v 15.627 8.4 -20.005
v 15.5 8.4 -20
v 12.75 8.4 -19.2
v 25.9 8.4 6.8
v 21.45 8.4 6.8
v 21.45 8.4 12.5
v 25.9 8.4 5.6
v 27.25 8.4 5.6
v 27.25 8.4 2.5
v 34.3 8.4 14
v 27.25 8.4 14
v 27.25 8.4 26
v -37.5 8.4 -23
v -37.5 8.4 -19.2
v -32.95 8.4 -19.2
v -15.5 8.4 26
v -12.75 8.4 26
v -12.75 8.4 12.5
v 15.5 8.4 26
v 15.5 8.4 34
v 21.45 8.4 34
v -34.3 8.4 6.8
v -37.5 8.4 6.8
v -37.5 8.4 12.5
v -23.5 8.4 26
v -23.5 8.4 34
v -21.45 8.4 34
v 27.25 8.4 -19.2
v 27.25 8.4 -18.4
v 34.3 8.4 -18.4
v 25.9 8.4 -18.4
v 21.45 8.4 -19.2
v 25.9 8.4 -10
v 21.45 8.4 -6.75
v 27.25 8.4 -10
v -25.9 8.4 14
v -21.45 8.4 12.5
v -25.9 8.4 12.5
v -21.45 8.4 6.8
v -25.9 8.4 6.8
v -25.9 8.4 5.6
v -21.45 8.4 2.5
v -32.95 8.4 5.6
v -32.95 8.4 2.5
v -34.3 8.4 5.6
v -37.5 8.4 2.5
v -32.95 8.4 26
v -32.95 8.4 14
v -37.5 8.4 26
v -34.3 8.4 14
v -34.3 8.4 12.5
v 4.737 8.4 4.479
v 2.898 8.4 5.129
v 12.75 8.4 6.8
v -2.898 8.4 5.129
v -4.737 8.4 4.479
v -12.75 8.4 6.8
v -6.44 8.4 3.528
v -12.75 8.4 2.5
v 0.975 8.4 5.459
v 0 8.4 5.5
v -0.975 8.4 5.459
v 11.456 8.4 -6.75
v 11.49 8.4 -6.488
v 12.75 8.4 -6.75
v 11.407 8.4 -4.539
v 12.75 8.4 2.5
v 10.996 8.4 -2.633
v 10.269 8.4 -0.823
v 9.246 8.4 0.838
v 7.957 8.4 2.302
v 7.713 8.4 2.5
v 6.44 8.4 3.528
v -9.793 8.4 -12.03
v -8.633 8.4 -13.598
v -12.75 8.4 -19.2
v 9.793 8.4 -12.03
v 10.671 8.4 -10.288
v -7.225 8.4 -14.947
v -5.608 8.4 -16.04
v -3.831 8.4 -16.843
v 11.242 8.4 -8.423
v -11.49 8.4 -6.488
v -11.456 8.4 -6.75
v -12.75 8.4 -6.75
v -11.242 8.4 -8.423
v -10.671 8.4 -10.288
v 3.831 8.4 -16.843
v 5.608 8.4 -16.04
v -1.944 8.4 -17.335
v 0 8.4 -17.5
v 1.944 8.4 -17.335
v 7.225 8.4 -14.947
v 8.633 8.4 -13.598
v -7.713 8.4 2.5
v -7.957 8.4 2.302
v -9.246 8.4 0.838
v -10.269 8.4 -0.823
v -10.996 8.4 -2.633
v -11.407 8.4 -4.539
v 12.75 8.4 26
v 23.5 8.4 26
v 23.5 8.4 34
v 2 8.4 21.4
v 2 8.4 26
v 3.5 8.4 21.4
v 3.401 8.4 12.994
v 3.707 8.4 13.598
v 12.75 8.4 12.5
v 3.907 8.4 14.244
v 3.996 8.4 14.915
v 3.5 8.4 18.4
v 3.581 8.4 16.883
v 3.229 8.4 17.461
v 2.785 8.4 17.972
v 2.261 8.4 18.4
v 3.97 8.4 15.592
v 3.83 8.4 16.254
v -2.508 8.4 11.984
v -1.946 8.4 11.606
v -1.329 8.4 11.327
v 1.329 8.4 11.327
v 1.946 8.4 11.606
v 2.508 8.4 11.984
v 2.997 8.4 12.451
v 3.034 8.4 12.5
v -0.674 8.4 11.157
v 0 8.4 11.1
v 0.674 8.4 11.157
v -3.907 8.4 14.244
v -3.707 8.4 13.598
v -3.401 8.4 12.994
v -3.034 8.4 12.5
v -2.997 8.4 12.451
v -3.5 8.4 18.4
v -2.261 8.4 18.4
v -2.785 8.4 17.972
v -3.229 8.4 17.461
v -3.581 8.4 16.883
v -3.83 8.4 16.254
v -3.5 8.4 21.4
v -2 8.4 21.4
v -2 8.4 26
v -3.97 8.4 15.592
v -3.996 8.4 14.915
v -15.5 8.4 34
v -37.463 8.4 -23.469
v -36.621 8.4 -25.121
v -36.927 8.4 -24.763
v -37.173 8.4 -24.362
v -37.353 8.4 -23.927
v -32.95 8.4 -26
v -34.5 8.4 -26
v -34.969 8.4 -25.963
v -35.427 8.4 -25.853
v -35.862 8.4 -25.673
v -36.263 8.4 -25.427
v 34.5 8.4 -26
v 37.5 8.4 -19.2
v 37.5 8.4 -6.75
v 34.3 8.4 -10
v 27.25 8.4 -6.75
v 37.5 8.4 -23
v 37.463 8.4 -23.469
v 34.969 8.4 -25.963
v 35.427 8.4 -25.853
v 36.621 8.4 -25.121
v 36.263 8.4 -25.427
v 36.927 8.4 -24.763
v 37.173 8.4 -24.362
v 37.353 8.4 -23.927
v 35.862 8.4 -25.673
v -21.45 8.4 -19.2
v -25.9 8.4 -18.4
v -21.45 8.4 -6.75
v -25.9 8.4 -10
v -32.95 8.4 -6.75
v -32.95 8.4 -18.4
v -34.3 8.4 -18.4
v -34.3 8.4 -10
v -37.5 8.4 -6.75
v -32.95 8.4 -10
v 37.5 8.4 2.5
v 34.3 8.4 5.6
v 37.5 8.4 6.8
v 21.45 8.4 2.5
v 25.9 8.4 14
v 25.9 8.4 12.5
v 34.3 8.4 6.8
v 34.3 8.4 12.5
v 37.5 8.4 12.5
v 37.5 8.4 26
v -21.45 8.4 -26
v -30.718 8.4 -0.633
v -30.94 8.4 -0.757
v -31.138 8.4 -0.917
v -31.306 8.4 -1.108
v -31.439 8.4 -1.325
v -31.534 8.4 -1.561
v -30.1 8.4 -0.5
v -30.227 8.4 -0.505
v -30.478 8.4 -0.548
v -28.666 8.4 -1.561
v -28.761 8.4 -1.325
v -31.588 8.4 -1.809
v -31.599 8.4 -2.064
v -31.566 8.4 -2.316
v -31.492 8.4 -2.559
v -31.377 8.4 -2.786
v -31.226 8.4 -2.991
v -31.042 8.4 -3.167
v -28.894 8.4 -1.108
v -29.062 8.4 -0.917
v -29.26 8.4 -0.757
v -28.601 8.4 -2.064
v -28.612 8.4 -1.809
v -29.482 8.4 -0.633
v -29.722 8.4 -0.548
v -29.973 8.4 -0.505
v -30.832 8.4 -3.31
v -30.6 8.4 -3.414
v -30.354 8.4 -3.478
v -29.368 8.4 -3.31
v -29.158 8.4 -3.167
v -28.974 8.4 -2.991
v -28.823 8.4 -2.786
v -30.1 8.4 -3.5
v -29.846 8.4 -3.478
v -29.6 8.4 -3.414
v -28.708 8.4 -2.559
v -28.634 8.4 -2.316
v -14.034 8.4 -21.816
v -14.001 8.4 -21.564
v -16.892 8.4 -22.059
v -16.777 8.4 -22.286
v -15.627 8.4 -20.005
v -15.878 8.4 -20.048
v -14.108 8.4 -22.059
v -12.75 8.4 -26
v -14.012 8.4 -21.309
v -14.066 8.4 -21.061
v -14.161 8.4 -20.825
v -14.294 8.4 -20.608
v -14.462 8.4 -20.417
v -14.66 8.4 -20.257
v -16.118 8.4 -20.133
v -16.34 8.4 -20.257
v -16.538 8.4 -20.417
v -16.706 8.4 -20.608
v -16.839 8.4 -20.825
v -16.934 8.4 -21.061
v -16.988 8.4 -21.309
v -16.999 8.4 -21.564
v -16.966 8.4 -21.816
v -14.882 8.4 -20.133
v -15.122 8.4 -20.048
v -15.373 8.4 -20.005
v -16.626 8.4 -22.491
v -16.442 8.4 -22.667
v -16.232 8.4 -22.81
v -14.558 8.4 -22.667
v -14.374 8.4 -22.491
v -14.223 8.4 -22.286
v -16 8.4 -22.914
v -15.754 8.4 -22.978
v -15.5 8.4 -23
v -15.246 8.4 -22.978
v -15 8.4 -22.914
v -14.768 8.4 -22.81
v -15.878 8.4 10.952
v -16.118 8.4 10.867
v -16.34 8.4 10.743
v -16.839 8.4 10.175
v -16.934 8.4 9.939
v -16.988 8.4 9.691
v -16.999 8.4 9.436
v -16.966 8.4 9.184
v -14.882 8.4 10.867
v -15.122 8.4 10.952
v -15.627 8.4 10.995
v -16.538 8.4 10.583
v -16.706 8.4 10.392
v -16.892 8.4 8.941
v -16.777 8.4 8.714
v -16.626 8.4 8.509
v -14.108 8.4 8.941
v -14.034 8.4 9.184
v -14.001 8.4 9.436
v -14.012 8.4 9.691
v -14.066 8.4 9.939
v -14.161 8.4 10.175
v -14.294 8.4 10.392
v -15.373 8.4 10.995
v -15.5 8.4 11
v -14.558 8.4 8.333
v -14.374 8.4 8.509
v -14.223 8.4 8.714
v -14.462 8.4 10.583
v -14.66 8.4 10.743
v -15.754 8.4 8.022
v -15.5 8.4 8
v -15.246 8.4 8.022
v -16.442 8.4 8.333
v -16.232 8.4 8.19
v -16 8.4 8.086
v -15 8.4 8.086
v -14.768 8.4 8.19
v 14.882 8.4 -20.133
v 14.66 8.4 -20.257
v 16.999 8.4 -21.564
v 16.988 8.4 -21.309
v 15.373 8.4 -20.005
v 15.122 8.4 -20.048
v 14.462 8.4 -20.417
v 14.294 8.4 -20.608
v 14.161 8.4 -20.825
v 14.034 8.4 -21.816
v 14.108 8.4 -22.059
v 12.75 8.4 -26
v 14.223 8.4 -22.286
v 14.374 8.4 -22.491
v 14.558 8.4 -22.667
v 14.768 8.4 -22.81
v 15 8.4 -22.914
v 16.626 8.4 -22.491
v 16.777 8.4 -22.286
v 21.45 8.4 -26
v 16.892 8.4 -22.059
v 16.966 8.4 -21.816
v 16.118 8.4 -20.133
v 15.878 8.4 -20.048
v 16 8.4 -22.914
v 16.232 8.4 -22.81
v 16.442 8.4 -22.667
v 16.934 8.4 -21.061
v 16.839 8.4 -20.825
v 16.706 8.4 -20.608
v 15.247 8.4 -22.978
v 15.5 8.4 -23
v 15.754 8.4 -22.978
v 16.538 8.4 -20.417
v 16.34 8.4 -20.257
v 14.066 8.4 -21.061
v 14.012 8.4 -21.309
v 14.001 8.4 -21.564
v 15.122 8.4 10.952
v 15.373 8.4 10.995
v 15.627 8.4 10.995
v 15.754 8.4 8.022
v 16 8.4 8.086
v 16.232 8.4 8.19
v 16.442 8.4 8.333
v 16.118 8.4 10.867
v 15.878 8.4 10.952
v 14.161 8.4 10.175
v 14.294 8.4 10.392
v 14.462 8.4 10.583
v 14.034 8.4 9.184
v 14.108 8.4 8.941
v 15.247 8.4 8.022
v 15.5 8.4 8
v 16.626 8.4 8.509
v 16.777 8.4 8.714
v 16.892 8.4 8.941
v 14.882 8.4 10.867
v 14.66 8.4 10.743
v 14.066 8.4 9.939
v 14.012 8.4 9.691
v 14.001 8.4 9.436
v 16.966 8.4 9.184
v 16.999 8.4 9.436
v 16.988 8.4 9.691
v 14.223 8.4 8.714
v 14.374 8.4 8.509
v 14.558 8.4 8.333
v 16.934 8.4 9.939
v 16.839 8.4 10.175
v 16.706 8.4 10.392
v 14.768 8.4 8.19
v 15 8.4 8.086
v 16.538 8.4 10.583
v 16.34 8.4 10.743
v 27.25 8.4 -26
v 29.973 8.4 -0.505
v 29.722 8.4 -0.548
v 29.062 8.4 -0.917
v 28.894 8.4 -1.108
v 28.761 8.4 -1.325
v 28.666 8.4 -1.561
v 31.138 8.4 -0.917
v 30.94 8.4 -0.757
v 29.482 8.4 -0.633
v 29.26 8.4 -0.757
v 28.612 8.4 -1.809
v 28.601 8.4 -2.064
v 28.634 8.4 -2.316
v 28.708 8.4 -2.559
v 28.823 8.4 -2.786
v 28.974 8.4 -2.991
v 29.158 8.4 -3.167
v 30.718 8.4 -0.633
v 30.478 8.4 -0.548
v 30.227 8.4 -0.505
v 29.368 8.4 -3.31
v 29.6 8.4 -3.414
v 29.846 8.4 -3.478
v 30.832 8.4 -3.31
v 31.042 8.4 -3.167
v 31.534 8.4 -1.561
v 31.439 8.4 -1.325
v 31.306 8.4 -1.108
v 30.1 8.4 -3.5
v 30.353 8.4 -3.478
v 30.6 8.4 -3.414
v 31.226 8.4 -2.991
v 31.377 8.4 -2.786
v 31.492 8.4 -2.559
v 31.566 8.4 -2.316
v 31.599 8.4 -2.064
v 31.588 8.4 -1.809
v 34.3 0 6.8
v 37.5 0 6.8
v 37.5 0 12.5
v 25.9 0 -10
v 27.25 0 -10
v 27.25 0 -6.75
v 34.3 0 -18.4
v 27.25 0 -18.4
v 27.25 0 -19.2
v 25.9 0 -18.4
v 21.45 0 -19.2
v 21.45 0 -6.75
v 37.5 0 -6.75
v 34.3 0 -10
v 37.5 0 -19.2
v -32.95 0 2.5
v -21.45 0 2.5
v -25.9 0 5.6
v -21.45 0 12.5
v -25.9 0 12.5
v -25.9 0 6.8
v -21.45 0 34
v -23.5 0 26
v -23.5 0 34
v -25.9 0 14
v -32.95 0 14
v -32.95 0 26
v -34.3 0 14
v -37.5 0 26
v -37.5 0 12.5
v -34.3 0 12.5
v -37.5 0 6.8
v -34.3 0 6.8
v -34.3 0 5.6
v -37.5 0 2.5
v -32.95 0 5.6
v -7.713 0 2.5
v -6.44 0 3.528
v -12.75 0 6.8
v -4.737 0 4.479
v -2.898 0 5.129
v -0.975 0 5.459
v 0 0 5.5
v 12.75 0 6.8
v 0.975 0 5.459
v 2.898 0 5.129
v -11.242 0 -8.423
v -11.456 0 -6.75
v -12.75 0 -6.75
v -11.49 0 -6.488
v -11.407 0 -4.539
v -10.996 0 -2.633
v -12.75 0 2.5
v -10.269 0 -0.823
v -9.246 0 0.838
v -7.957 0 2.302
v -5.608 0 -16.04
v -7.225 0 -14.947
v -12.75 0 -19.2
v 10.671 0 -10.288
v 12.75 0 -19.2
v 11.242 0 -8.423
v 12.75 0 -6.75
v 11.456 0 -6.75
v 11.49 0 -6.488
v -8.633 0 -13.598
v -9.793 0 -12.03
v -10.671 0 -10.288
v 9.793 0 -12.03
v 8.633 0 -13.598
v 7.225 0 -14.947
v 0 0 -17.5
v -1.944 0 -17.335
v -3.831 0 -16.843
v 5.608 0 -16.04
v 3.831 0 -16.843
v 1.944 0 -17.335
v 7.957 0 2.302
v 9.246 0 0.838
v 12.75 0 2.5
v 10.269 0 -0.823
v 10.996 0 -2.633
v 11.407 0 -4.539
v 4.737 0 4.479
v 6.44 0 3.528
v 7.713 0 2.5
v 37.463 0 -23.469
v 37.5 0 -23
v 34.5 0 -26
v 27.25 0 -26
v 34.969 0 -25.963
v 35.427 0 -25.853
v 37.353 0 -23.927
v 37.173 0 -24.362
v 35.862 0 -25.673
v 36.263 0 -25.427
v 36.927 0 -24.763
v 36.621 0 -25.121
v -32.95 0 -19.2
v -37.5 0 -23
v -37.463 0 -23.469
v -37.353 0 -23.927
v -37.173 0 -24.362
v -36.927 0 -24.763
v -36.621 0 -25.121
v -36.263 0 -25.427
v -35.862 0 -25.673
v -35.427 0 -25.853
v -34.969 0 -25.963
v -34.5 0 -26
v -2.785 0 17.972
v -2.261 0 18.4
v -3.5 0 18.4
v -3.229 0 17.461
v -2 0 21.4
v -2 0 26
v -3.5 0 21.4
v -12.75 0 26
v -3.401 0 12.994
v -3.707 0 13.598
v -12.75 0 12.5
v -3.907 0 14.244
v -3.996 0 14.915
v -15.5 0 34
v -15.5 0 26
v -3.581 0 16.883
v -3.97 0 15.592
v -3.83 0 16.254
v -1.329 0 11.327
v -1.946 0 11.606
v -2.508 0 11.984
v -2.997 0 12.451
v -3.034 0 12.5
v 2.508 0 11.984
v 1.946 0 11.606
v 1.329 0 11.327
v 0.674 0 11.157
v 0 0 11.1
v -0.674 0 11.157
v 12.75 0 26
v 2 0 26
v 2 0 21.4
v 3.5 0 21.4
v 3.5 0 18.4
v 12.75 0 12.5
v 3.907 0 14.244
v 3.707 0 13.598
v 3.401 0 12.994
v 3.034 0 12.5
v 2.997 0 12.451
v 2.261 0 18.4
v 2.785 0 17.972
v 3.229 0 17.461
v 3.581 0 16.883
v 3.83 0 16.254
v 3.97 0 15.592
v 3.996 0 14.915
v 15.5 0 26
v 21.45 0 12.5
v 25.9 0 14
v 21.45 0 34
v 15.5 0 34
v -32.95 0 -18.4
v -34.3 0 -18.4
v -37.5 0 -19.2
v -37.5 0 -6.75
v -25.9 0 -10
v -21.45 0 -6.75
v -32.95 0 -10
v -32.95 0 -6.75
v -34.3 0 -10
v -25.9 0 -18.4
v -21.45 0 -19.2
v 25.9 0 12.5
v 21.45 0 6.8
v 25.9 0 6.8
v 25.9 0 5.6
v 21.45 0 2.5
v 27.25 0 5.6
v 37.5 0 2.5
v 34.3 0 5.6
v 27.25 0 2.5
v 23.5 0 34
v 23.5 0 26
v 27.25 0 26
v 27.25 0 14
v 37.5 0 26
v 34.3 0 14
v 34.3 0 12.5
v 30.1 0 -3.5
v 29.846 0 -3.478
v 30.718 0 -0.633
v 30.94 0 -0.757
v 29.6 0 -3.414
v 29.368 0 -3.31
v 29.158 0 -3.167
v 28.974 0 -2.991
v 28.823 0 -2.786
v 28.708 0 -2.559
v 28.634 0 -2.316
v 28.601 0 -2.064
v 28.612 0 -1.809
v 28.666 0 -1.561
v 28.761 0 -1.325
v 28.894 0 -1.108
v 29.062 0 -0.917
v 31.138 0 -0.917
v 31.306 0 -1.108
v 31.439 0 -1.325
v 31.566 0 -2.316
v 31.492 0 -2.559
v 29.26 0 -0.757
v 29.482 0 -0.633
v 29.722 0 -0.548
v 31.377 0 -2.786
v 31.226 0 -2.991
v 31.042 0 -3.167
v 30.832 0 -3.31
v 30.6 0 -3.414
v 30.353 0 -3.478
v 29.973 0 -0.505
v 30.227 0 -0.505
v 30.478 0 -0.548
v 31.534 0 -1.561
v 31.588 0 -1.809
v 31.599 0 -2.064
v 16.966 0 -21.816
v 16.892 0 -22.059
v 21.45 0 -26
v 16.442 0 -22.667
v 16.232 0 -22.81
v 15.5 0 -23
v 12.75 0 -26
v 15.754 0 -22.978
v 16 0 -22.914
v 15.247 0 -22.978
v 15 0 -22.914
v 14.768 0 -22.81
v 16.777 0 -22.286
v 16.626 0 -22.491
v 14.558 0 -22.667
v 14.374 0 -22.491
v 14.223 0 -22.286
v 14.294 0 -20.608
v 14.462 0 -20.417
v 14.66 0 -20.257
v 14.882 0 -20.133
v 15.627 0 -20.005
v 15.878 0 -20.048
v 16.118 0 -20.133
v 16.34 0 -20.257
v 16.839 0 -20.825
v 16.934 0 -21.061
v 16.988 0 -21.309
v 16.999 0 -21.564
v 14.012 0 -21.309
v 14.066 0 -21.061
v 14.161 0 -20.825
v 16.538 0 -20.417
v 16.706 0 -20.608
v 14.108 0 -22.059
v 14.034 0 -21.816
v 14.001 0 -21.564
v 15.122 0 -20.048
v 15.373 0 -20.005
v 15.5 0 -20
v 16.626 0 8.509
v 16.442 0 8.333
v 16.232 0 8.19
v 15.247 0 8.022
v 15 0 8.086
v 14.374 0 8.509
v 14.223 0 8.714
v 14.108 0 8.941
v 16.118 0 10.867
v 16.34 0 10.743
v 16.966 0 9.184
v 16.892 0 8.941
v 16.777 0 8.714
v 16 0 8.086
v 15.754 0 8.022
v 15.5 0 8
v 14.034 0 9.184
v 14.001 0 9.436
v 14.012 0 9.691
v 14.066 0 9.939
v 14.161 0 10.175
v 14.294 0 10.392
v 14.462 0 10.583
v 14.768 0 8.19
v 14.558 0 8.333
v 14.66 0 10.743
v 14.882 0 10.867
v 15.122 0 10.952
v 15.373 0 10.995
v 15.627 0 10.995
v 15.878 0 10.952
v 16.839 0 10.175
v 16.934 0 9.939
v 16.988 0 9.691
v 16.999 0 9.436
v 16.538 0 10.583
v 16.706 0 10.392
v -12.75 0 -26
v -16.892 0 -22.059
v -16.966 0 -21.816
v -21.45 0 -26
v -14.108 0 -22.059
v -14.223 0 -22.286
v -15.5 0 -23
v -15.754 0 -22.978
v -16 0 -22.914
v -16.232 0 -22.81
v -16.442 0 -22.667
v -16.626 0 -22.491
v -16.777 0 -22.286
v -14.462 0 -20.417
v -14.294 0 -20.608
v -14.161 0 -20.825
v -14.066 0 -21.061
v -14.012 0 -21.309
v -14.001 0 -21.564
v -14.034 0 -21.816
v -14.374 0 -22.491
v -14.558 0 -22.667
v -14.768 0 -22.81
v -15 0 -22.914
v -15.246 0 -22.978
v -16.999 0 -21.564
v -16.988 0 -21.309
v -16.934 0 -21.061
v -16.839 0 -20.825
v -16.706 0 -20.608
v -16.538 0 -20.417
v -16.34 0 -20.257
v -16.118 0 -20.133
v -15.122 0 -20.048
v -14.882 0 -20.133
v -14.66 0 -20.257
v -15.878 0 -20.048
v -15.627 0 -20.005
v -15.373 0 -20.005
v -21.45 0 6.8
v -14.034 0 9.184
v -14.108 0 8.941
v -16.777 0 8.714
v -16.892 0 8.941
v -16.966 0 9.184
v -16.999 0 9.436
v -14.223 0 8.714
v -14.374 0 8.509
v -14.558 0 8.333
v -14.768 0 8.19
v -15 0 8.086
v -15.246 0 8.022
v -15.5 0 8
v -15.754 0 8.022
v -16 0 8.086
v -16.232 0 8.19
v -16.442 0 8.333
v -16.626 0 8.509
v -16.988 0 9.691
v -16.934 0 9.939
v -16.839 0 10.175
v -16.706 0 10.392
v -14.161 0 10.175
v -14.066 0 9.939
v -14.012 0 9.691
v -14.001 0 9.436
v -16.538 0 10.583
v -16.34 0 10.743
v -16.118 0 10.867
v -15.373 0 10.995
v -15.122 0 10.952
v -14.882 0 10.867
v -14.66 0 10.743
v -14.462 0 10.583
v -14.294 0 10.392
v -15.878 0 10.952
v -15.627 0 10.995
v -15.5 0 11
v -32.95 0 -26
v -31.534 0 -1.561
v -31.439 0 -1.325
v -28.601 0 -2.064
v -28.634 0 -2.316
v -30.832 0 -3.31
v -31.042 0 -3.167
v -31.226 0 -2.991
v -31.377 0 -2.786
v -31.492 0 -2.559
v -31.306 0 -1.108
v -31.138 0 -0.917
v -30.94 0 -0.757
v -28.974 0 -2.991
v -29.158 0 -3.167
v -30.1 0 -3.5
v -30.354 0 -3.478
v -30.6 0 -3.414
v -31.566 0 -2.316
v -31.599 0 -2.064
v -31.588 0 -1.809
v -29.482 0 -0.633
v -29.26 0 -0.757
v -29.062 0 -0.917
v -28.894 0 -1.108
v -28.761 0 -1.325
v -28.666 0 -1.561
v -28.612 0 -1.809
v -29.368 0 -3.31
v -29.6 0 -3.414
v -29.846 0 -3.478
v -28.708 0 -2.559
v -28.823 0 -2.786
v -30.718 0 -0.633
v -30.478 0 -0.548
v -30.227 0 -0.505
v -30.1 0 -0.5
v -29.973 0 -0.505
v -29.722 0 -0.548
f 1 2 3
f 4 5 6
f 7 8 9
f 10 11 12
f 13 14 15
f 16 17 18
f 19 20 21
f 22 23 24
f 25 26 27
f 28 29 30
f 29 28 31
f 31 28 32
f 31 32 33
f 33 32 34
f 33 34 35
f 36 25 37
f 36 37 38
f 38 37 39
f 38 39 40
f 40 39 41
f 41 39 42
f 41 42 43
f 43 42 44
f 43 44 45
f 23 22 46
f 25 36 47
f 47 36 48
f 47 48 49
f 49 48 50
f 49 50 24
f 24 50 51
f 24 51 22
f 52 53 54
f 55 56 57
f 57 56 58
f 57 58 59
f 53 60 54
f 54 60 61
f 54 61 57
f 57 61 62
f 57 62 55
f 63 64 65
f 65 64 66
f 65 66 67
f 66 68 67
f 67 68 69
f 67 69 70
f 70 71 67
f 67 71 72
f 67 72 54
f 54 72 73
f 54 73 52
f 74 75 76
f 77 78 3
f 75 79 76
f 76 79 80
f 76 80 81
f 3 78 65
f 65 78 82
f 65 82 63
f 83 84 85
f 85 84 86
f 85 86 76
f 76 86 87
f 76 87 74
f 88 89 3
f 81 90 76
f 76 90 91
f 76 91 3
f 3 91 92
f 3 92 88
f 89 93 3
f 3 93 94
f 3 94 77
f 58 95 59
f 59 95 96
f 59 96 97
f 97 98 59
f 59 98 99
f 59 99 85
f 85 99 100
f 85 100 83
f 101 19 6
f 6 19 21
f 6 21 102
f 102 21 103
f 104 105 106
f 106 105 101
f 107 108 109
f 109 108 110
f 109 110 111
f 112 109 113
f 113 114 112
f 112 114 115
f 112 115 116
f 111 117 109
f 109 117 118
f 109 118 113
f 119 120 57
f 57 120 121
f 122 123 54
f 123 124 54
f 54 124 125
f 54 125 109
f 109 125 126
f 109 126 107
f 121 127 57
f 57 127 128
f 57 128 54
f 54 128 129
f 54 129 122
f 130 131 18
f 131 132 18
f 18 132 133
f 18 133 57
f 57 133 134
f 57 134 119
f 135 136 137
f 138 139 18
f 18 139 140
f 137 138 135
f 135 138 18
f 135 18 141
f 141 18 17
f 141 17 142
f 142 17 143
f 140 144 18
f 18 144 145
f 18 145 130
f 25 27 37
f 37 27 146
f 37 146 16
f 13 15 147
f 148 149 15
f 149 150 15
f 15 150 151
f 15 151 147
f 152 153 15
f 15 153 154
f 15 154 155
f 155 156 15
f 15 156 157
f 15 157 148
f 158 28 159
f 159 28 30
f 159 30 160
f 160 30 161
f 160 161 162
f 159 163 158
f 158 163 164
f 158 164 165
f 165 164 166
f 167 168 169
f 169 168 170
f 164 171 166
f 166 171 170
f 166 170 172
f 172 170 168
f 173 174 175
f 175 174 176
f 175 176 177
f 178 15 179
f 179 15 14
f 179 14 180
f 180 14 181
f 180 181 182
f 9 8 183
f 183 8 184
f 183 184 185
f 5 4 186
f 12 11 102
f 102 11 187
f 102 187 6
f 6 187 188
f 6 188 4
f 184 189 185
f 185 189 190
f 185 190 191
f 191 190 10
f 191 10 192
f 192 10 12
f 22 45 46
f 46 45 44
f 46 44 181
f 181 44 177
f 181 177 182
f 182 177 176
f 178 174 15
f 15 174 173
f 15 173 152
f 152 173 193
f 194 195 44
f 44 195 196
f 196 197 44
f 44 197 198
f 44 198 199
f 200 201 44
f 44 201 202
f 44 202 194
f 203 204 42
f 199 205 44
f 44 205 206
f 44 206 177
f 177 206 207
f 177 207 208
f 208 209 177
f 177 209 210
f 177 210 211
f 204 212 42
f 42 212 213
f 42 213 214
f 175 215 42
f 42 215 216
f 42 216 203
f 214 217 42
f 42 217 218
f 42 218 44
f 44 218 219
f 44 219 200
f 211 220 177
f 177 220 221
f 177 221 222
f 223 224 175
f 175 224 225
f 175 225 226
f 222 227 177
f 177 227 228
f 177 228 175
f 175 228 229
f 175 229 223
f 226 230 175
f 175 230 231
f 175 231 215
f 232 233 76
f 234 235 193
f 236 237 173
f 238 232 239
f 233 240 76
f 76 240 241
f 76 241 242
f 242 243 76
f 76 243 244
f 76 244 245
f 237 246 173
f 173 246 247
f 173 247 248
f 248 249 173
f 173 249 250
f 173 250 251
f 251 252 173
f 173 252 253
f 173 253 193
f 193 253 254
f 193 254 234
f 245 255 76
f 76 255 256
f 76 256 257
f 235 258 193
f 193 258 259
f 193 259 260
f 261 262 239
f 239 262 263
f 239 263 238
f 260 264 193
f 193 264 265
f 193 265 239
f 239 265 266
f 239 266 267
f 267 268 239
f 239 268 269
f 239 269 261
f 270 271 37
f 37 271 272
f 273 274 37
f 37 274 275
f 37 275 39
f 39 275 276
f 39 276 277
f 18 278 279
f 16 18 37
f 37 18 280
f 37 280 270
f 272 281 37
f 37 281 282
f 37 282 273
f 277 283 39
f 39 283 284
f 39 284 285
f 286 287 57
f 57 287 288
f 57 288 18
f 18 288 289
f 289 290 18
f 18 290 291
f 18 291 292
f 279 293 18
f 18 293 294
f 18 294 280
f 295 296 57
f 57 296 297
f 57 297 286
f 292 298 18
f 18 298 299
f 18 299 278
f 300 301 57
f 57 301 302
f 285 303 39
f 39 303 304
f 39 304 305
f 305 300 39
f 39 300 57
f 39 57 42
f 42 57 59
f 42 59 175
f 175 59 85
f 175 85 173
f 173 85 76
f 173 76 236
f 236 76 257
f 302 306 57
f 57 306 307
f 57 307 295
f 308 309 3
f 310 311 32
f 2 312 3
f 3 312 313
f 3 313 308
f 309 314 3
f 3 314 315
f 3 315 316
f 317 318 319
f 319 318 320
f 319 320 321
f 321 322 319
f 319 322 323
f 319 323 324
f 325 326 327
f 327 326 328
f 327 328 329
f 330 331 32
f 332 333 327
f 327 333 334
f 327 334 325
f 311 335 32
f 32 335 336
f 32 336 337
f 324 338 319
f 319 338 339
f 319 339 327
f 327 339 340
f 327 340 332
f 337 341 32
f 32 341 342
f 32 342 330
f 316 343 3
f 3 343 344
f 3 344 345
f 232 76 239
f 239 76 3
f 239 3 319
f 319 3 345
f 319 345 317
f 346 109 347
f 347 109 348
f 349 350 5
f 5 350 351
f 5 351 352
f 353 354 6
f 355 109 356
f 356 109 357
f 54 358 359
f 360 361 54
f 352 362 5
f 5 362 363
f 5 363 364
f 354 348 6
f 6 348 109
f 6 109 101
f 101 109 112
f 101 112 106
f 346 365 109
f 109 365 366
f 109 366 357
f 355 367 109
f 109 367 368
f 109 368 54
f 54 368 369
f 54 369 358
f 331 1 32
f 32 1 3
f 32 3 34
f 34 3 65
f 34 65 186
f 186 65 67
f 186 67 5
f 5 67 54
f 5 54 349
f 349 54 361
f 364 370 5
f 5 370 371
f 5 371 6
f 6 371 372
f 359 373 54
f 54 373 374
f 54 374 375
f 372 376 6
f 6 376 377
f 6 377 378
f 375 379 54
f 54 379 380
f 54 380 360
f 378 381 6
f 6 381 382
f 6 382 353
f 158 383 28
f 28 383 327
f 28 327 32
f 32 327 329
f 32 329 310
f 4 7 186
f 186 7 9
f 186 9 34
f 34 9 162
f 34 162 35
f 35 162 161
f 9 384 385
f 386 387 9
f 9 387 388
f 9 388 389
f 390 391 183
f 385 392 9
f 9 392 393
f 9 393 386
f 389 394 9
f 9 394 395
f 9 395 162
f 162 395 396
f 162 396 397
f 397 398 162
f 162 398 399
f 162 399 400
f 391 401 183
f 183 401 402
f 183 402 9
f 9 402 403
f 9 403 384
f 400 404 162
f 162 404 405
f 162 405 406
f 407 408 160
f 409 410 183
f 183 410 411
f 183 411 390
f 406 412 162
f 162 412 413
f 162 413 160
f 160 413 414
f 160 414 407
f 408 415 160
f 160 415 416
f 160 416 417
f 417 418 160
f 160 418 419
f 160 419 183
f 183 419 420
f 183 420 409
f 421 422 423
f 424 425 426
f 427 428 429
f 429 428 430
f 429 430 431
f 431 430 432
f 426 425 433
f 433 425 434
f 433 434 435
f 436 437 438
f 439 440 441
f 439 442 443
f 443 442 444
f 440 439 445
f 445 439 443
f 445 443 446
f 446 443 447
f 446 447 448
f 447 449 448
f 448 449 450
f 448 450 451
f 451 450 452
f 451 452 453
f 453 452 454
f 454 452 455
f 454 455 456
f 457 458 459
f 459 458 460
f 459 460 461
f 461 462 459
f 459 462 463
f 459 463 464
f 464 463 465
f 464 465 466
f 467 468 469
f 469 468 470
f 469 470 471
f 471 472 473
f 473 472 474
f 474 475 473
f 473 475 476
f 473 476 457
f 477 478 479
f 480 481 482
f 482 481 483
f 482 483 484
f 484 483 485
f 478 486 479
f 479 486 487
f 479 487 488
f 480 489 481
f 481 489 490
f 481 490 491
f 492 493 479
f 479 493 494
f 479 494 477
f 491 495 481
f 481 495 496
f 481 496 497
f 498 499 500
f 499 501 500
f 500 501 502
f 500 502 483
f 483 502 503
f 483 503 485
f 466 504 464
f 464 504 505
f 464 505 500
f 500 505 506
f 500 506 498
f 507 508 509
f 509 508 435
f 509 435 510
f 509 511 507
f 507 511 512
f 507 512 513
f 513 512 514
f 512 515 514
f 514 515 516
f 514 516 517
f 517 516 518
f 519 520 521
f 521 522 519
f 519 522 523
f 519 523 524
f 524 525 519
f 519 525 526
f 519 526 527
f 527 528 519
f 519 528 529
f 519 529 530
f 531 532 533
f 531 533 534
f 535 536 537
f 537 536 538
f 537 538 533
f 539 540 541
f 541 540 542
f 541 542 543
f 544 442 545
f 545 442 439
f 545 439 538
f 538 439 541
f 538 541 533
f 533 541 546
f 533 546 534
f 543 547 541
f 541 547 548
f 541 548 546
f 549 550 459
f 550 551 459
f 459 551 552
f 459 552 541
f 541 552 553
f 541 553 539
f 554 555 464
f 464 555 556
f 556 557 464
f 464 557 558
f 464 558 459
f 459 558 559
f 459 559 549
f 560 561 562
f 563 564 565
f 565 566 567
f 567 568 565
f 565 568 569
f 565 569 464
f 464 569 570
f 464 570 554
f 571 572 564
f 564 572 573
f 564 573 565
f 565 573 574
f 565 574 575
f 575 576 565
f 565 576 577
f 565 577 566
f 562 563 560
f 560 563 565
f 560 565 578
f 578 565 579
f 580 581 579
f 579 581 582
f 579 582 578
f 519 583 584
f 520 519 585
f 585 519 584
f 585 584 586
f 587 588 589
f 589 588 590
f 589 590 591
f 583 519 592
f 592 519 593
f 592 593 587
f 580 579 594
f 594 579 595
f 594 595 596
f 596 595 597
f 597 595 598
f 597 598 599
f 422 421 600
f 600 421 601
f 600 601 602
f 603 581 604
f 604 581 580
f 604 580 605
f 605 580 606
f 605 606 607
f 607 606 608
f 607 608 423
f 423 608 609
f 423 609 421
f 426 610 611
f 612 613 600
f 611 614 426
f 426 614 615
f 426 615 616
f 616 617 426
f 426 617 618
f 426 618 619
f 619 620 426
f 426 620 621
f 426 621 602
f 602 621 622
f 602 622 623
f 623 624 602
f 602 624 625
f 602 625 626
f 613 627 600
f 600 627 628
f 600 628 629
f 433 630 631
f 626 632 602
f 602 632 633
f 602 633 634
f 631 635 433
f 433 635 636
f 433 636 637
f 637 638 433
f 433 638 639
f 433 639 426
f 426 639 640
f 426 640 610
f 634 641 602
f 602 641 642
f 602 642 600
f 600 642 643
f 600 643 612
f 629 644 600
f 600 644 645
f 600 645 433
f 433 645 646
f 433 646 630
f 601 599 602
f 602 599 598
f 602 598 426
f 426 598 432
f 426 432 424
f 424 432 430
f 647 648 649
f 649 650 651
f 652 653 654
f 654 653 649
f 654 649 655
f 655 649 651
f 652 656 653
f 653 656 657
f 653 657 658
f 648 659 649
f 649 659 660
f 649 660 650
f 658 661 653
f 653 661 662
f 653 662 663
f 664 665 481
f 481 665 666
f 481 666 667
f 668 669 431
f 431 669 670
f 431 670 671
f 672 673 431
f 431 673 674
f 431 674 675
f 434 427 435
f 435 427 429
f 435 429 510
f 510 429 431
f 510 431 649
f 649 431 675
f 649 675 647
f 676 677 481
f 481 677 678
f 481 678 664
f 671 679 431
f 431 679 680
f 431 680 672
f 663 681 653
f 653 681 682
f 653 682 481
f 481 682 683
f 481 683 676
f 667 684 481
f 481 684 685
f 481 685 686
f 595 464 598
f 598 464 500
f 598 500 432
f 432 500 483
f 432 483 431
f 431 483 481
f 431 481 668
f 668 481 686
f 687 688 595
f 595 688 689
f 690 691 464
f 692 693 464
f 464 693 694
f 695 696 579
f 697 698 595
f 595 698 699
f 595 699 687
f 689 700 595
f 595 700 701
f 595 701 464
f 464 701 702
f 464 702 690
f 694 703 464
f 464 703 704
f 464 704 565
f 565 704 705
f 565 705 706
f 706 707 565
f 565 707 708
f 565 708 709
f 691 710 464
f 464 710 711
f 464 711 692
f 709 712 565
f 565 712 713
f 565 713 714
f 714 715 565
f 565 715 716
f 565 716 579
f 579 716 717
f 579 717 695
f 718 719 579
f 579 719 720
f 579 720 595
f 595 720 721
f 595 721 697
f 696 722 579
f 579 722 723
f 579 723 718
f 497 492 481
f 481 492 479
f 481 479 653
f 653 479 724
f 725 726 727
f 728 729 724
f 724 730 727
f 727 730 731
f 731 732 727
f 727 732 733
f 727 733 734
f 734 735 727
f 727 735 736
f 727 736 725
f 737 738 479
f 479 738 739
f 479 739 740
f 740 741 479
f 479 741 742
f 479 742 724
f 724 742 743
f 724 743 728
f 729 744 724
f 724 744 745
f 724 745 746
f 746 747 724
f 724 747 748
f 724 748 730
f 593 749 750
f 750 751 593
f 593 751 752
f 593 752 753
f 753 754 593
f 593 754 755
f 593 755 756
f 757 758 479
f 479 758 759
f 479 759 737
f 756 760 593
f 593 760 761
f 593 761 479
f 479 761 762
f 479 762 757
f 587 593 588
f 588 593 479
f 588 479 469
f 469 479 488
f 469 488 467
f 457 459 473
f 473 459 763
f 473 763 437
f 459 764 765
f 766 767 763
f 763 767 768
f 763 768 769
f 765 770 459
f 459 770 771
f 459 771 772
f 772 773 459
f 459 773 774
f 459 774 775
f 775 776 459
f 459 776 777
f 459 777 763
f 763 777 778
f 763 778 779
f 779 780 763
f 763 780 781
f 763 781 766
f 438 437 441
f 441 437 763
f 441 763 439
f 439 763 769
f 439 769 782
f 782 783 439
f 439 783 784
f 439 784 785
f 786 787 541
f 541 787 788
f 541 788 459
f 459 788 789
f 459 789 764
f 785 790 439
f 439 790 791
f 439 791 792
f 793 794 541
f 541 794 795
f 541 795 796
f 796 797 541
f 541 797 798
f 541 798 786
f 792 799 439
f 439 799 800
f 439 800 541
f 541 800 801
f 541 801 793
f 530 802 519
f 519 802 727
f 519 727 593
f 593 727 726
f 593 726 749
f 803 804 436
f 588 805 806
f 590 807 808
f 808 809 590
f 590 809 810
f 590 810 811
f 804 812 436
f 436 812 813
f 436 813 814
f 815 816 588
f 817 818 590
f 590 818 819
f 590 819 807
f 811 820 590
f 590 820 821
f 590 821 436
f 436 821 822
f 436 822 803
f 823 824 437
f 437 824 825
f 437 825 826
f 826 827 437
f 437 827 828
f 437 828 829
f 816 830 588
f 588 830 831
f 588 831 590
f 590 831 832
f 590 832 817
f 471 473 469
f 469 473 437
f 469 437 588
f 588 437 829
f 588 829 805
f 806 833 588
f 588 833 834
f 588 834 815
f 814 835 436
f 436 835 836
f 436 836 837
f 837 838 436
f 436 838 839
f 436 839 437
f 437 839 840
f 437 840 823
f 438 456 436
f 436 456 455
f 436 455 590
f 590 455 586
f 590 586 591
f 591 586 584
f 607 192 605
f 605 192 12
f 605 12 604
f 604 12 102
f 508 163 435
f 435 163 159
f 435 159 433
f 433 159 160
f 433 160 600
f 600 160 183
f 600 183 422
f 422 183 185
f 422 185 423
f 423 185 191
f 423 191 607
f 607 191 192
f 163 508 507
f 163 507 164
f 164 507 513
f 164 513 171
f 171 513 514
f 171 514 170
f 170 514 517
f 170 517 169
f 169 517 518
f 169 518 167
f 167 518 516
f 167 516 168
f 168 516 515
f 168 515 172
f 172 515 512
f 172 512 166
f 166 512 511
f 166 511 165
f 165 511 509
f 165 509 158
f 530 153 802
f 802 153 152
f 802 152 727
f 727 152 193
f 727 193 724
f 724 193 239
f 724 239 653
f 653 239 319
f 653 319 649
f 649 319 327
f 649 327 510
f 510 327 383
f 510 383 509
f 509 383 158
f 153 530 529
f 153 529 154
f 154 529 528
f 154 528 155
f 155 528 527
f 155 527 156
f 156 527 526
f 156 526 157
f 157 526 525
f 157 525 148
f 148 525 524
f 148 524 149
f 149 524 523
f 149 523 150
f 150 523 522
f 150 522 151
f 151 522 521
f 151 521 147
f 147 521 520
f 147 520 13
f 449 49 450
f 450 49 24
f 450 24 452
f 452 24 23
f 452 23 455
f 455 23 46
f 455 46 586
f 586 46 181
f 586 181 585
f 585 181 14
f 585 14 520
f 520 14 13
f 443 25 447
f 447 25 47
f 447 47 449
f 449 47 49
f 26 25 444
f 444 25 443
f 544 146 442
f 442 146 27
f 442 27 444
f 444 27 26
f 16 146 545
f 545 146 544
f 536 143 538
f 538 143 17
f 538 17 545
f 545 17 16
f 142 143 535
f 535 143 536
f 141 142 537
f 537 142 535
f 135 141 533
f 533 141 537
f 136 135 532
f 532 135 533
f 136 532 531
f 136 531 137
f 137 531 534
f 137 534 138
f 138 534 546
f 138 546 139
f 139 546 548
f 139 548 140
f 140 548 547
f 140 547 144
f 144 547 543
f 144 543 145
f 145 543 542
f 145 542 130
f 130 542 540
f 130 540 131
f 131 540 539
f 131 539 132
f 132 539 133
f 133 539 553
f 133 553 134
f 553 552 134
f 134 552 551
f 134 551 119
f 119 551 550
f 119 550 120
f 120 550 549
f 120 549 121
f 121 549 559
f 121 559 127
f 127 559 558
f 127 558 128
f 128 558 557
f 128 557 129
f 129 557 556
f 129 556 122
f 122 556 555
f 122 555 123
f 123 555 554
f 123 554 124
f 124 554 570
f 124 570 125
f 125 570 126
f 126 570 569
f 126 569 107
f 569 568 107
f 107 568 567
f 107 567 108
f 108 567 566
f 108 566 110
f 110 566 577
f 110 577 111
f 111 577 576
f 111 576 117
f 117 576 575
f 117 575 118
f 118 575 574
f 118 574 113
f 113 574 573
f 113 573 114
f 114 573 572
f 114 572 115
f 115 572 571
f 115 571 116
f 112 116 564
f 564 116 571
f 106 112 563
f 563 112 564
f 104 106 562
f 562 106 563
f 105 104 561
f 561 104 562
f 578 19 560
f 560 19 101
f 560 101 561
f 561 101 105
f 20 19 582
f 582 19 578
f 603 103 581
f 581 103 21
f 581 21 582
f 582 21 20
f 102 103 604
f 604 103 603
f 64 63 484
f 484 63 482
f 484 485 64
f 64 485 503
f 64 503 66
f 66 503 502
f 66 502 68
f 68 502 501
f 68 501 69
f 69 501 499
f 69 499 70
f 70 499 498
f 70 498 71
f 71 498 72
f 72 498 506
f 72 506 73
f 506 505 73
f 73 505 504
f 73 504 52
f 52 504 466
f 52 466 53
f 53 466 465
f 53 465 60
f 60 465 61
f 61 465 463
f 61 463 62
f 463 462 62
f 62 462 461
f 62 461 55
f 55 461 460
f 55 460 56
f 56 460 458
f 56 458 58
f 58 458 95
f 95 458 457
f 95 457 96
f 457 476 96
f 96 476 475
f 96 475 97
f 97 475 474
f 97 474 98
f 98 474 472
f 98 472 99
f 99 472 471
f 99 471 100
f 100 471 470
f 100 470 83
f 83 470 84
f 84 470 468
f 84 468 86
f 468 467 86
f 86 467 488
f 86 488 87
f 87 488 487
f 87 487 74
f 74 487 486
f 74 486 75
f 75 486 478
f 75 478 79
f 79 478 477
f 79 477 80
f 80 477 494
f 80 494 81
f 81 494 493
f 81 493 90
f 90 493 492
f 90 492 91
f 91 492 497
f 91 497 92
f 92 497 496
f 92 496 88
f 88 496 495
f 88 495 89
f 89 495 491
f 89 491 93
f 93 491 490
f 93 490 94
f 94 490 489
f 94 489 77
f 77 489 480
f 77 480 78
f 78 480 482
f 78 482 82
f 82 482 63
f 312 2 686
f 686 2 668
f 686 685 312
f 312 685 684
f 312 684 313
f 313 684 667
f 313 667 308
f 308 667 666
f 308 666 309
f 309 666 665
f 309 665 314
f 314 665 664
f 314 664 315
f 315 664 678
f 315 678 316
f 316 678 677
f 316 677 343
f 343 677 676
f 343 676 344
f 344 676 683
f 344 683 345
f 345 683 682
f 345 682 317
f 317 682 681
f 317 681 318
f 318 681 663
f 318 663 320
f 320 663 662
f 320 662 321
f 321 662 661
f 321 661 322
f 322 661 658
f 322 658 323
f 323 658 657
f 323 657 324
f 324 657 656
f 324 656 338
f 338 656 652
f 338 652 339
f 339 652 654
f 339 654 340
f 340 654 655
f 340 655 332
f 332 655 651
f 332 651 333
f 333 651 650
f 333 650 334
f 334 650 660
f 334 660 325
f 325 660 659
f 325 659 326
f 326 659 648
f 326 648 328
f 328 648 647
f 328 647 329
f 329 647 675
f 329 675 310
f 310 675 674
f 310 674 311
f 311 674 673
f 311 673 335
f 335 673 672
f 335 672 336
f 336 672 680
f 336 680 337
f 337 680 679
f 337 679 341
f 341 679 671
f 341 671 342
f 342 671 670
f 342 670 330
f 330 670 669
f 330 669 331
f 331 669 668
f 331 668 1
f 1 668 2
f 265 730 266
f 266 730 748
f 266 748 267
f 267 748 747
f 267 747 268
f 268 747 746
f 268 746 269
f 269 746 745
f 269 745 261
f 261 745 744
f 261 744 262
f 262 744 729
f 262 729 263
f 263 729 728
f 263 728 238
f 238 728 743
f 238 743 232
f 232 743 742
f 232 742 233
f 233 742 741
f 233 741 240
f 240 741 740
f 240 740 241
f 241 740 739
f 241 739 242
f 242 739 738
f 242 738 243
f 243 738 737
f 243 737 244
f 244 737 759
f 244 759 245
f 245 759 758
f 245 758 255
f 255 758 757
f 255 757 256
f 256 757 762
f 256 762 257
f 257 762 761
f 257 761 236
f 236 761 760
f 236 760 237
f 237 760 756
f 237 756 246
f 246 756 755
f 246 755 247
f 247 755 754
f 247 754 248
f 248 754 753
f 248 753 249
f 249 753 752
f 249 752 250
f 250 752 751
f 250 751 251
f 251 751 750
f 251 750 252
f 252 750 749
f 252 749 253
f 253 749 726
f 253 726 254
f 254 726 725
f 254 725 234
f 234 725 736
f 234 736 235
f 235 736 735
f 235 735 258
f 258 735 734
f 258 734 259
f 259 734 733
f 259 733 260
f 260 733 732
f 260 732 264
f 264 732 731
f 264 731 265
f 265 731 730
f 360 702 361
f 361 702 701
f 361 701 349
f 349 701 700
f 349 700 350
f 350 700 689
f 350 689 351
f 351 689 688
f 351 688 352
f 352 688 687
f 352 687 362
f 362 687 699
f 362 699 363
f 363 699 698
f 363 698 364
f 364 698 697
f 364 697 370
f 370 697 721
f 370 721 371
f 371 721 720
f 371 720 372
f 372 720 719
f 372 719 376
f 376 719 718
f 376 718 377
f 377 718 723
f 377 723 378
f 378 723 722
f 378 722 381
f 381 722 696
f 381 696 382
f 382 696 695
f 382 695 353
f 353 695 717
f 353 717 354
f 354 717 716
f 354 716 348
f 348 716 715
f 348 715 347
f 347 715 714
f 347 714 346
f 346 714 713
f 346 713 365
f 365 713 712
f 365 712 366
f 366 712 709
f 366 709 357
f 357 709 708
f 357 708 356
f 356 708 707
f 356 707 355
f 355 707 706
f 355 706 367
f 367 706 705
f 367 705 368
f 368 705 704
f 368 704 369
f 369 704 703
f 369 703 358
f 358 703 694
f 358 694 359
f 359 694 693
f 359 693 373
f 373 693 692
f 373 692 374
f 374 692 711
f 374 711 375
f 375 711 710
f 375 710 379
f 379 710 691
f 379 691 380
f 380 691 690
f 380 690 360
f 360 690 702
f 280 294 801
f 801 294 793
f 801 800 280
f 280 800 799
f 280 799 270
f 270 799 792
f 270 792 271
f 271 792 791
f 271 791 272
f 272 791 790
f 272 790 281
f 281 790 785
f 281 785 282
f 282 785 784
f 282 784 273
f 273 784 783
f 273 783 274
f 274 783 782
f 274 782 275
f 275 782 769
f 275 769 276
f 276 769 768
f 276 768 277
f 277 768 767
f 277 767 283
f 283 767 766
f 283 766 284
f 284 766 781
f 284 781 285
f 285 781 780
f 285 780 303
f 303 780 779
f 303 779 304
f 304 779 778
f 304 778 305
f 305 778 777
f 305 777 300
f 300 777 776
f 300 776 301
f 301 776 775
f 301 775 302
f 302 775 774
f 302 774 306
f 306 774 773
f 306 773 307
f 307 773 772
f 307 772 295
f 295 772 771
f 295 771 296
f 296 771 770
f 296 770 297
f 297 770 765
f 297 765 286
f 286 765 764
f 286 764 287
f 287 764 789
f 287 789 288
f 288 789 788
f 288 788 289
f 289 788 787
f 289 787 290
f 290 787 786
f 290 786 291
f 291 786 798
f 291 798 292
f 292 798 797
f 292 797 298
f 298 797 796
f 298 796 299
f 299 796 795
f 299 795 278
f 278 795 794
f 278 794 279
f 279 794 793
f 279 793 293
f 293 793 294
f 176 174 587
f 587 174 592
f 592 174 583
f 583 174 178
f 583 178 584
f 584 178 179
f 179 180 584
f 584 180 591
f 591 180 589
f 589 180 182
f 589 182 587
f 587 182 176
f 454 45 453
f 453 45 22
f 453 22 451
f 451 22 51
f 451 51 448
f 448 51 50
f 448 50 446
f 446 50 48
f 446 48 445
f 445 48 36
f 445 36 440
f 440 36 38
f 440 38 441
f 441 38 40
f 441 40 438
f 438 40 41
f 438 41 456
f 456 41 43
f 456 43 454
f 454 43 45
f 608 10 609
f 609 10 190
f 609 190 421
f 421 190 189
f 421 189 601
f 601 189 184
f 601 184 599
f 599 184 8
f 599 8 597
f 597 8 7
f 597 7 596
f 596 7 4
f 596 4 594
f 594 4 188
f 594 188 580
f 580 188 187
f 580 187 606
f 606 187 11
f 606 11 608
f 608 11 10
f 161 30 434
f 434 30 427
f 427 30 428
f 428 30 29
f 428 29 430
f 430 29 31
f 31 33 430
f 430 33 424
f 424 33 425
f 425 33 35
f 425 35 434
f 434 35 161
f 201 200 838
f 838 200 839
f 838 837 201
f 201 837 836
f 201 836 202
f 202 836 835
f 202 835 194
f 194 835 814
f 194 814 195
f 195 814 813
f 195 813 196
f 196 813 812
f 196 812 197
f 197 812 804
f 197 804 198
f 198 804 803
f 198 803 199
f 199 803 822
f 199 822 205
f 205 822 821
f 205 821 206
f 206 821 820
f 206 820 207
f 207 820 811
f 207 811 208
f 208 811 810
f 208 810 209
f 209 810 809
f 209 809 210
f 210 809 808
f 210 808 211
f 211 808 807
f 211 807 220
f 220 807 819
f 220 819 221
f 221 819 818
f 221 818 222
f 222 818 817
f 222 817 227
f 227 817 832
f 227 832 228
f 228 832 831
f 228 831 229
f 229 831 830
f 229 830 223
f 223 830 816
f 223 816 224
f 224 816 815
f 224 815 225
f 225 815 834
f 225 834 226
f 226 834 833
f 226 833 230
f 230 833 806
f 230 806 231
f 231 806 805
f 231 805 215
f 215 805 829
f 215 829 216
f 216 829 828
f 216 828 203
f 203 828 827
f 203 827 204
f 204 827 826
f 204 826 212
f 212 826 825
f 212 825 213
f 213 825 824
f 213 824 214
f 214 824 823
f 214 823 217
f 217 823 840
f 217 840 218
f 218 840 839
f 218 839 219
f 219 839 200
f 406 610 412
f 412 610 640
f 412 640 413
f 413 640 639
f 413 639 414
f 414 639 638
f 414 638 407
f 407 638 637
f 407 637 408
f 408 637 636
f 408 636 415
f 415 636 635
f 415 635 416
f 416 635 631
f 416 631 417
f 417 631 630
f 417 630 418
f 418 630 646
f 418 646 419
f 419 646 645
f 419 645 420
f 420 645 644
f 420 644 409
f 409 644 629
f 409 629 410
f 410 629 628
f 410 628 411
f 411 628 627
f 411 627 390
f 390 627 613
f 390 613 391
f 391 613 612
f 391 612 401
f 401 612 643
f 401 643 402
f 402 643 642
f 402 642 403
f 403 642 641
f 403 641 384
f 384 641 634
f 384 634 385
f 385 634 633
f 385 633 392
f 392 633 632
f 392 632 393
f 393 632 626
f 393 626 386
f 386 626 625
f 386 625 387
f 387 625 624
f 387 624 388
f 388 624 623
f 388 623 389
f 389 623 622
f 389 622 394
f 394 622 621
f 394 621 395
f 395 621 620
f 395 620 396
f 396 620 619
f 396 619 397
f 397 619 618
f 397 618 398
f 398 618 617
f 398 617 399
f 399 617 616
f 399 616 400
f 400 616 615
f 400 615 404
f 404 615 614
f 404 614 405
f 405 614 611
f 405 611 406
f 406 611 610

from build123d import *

# Parameters (mm, degrees)
SKETCH1_R           = 11.5
SKETCH1_R_2         = 1.5
SKETCH1_W           = 8.4
SKETCH1_H           = 8.4
BOSS_EXTRUDE1_DEPTH = 8.4


with BuildPart() as part:
    # Sketch1 → Boss-Extrude1 (new body)
    with BuildSketch(Plane(origin=(0, 0, 0), x_dir=(1, 0, 0), z_dir=(0, 1, 0))):
        with BuildLine():
            Line((-34.5, 26), (34.5, 26))
            ThreePointArc((34.5, 26), (36.621320344, 25.121320344), (37.5, 23))
            Line((37.5, 23), (37.5, -26))
            Line((37.5, -26), (23.5, -26))
            Line((23.5, -26), (23.5, -34))
            Line((23.5, -34), (15.5, -34))
            Line((15.5, -34), (15.5, -26))
            Line((15.5, -26), (2, -26))
            Line((2, -26), (2, -21.4))
            Line((2, -21.4), (3.5, -21.4))
            Line((3.5, -21.4), (3.5, -18.4))
            Line((3.5, -18.4), (2.260530911, -18.4))
            ThreePointArc((2.260530911, -18.4), (0, -11.1), (-2.260530911, -18.4))
            Line((-2.260530911, -18.4), (-3.5, -18.4))
            Line((-3.5, -18.4), (-3.5, -21.4))
            Line((-3.5, -21.4), (-2, -21.4))
            Line((-2, -21.4), (-2, -26))
            Line((-2, -26), (-15.5, -26))
            Line((-15.5, -26), (-15.5, -34))
            Line((-15.5, -34), (-23.5, -34))
            Line((-23.5, -34), (-23.5, -26))
            Line((-23.5, -26), (-37.5, -26))
            Line((-37.5, -26), (-37.5, 23))
            ThreePointArc((-37.5, 23), (-36.621320344, 25.121320344), (-34.5, 26))
        make_face()
        with Locations((0, 6)):
            Circle(SKETCH1_R, mode=Mode.SUBTRACT)
        with Locations((15.5, 21.5)):
            Circle(SKETCH1_R_2, mode=Mode.SUBTRACT)
        with Locations((-15.5, 21.5)):
            Circle(SKETCH1_R_2, mode=Mode.SUBTRACT)
        with Locations((15.5, -9.5)):
            Circle(SKETCH1_R_2, mode=Mode.SUBTRACT)
        with Locations((-15.5, -9.5)):
            Circle(SKETCH1_R_2, mode=Mode.SUBTRACT)
        with Locations((-30.1, 2)):
            Circle(SKETCH1_R_2, mode=Mode.SUBTRACT)
        with Locations((30.1, 2)):
            Circle(SKETCH1_R_2, mode=Mode.SUBTRACT)
        with Locations((-30.1, 14.2)):
            Rectangle(SKETCH1_W, SKETCH1_H, mode=Mode.SUBTRACT)
        with Locations((-30.1, -9.8)):
            Rectangle(SKETCH1_W, SKETCH1_H, mode=Mode.SUBTRACT)
        with Locations((30.1, -9.8)):
            Rectangle(SKETCH1_W, SKETCH1_H, mode=Mode.SUBTRACT)
        with Locations((30.1, 14.2)):
            Rectangle(SKETCH1_W, SKETCH1_H, mode=Mode.SUBTRACT)
    extrude(amount=BOSS_EXTRUDE1_DEPTH)


solid = part.part
